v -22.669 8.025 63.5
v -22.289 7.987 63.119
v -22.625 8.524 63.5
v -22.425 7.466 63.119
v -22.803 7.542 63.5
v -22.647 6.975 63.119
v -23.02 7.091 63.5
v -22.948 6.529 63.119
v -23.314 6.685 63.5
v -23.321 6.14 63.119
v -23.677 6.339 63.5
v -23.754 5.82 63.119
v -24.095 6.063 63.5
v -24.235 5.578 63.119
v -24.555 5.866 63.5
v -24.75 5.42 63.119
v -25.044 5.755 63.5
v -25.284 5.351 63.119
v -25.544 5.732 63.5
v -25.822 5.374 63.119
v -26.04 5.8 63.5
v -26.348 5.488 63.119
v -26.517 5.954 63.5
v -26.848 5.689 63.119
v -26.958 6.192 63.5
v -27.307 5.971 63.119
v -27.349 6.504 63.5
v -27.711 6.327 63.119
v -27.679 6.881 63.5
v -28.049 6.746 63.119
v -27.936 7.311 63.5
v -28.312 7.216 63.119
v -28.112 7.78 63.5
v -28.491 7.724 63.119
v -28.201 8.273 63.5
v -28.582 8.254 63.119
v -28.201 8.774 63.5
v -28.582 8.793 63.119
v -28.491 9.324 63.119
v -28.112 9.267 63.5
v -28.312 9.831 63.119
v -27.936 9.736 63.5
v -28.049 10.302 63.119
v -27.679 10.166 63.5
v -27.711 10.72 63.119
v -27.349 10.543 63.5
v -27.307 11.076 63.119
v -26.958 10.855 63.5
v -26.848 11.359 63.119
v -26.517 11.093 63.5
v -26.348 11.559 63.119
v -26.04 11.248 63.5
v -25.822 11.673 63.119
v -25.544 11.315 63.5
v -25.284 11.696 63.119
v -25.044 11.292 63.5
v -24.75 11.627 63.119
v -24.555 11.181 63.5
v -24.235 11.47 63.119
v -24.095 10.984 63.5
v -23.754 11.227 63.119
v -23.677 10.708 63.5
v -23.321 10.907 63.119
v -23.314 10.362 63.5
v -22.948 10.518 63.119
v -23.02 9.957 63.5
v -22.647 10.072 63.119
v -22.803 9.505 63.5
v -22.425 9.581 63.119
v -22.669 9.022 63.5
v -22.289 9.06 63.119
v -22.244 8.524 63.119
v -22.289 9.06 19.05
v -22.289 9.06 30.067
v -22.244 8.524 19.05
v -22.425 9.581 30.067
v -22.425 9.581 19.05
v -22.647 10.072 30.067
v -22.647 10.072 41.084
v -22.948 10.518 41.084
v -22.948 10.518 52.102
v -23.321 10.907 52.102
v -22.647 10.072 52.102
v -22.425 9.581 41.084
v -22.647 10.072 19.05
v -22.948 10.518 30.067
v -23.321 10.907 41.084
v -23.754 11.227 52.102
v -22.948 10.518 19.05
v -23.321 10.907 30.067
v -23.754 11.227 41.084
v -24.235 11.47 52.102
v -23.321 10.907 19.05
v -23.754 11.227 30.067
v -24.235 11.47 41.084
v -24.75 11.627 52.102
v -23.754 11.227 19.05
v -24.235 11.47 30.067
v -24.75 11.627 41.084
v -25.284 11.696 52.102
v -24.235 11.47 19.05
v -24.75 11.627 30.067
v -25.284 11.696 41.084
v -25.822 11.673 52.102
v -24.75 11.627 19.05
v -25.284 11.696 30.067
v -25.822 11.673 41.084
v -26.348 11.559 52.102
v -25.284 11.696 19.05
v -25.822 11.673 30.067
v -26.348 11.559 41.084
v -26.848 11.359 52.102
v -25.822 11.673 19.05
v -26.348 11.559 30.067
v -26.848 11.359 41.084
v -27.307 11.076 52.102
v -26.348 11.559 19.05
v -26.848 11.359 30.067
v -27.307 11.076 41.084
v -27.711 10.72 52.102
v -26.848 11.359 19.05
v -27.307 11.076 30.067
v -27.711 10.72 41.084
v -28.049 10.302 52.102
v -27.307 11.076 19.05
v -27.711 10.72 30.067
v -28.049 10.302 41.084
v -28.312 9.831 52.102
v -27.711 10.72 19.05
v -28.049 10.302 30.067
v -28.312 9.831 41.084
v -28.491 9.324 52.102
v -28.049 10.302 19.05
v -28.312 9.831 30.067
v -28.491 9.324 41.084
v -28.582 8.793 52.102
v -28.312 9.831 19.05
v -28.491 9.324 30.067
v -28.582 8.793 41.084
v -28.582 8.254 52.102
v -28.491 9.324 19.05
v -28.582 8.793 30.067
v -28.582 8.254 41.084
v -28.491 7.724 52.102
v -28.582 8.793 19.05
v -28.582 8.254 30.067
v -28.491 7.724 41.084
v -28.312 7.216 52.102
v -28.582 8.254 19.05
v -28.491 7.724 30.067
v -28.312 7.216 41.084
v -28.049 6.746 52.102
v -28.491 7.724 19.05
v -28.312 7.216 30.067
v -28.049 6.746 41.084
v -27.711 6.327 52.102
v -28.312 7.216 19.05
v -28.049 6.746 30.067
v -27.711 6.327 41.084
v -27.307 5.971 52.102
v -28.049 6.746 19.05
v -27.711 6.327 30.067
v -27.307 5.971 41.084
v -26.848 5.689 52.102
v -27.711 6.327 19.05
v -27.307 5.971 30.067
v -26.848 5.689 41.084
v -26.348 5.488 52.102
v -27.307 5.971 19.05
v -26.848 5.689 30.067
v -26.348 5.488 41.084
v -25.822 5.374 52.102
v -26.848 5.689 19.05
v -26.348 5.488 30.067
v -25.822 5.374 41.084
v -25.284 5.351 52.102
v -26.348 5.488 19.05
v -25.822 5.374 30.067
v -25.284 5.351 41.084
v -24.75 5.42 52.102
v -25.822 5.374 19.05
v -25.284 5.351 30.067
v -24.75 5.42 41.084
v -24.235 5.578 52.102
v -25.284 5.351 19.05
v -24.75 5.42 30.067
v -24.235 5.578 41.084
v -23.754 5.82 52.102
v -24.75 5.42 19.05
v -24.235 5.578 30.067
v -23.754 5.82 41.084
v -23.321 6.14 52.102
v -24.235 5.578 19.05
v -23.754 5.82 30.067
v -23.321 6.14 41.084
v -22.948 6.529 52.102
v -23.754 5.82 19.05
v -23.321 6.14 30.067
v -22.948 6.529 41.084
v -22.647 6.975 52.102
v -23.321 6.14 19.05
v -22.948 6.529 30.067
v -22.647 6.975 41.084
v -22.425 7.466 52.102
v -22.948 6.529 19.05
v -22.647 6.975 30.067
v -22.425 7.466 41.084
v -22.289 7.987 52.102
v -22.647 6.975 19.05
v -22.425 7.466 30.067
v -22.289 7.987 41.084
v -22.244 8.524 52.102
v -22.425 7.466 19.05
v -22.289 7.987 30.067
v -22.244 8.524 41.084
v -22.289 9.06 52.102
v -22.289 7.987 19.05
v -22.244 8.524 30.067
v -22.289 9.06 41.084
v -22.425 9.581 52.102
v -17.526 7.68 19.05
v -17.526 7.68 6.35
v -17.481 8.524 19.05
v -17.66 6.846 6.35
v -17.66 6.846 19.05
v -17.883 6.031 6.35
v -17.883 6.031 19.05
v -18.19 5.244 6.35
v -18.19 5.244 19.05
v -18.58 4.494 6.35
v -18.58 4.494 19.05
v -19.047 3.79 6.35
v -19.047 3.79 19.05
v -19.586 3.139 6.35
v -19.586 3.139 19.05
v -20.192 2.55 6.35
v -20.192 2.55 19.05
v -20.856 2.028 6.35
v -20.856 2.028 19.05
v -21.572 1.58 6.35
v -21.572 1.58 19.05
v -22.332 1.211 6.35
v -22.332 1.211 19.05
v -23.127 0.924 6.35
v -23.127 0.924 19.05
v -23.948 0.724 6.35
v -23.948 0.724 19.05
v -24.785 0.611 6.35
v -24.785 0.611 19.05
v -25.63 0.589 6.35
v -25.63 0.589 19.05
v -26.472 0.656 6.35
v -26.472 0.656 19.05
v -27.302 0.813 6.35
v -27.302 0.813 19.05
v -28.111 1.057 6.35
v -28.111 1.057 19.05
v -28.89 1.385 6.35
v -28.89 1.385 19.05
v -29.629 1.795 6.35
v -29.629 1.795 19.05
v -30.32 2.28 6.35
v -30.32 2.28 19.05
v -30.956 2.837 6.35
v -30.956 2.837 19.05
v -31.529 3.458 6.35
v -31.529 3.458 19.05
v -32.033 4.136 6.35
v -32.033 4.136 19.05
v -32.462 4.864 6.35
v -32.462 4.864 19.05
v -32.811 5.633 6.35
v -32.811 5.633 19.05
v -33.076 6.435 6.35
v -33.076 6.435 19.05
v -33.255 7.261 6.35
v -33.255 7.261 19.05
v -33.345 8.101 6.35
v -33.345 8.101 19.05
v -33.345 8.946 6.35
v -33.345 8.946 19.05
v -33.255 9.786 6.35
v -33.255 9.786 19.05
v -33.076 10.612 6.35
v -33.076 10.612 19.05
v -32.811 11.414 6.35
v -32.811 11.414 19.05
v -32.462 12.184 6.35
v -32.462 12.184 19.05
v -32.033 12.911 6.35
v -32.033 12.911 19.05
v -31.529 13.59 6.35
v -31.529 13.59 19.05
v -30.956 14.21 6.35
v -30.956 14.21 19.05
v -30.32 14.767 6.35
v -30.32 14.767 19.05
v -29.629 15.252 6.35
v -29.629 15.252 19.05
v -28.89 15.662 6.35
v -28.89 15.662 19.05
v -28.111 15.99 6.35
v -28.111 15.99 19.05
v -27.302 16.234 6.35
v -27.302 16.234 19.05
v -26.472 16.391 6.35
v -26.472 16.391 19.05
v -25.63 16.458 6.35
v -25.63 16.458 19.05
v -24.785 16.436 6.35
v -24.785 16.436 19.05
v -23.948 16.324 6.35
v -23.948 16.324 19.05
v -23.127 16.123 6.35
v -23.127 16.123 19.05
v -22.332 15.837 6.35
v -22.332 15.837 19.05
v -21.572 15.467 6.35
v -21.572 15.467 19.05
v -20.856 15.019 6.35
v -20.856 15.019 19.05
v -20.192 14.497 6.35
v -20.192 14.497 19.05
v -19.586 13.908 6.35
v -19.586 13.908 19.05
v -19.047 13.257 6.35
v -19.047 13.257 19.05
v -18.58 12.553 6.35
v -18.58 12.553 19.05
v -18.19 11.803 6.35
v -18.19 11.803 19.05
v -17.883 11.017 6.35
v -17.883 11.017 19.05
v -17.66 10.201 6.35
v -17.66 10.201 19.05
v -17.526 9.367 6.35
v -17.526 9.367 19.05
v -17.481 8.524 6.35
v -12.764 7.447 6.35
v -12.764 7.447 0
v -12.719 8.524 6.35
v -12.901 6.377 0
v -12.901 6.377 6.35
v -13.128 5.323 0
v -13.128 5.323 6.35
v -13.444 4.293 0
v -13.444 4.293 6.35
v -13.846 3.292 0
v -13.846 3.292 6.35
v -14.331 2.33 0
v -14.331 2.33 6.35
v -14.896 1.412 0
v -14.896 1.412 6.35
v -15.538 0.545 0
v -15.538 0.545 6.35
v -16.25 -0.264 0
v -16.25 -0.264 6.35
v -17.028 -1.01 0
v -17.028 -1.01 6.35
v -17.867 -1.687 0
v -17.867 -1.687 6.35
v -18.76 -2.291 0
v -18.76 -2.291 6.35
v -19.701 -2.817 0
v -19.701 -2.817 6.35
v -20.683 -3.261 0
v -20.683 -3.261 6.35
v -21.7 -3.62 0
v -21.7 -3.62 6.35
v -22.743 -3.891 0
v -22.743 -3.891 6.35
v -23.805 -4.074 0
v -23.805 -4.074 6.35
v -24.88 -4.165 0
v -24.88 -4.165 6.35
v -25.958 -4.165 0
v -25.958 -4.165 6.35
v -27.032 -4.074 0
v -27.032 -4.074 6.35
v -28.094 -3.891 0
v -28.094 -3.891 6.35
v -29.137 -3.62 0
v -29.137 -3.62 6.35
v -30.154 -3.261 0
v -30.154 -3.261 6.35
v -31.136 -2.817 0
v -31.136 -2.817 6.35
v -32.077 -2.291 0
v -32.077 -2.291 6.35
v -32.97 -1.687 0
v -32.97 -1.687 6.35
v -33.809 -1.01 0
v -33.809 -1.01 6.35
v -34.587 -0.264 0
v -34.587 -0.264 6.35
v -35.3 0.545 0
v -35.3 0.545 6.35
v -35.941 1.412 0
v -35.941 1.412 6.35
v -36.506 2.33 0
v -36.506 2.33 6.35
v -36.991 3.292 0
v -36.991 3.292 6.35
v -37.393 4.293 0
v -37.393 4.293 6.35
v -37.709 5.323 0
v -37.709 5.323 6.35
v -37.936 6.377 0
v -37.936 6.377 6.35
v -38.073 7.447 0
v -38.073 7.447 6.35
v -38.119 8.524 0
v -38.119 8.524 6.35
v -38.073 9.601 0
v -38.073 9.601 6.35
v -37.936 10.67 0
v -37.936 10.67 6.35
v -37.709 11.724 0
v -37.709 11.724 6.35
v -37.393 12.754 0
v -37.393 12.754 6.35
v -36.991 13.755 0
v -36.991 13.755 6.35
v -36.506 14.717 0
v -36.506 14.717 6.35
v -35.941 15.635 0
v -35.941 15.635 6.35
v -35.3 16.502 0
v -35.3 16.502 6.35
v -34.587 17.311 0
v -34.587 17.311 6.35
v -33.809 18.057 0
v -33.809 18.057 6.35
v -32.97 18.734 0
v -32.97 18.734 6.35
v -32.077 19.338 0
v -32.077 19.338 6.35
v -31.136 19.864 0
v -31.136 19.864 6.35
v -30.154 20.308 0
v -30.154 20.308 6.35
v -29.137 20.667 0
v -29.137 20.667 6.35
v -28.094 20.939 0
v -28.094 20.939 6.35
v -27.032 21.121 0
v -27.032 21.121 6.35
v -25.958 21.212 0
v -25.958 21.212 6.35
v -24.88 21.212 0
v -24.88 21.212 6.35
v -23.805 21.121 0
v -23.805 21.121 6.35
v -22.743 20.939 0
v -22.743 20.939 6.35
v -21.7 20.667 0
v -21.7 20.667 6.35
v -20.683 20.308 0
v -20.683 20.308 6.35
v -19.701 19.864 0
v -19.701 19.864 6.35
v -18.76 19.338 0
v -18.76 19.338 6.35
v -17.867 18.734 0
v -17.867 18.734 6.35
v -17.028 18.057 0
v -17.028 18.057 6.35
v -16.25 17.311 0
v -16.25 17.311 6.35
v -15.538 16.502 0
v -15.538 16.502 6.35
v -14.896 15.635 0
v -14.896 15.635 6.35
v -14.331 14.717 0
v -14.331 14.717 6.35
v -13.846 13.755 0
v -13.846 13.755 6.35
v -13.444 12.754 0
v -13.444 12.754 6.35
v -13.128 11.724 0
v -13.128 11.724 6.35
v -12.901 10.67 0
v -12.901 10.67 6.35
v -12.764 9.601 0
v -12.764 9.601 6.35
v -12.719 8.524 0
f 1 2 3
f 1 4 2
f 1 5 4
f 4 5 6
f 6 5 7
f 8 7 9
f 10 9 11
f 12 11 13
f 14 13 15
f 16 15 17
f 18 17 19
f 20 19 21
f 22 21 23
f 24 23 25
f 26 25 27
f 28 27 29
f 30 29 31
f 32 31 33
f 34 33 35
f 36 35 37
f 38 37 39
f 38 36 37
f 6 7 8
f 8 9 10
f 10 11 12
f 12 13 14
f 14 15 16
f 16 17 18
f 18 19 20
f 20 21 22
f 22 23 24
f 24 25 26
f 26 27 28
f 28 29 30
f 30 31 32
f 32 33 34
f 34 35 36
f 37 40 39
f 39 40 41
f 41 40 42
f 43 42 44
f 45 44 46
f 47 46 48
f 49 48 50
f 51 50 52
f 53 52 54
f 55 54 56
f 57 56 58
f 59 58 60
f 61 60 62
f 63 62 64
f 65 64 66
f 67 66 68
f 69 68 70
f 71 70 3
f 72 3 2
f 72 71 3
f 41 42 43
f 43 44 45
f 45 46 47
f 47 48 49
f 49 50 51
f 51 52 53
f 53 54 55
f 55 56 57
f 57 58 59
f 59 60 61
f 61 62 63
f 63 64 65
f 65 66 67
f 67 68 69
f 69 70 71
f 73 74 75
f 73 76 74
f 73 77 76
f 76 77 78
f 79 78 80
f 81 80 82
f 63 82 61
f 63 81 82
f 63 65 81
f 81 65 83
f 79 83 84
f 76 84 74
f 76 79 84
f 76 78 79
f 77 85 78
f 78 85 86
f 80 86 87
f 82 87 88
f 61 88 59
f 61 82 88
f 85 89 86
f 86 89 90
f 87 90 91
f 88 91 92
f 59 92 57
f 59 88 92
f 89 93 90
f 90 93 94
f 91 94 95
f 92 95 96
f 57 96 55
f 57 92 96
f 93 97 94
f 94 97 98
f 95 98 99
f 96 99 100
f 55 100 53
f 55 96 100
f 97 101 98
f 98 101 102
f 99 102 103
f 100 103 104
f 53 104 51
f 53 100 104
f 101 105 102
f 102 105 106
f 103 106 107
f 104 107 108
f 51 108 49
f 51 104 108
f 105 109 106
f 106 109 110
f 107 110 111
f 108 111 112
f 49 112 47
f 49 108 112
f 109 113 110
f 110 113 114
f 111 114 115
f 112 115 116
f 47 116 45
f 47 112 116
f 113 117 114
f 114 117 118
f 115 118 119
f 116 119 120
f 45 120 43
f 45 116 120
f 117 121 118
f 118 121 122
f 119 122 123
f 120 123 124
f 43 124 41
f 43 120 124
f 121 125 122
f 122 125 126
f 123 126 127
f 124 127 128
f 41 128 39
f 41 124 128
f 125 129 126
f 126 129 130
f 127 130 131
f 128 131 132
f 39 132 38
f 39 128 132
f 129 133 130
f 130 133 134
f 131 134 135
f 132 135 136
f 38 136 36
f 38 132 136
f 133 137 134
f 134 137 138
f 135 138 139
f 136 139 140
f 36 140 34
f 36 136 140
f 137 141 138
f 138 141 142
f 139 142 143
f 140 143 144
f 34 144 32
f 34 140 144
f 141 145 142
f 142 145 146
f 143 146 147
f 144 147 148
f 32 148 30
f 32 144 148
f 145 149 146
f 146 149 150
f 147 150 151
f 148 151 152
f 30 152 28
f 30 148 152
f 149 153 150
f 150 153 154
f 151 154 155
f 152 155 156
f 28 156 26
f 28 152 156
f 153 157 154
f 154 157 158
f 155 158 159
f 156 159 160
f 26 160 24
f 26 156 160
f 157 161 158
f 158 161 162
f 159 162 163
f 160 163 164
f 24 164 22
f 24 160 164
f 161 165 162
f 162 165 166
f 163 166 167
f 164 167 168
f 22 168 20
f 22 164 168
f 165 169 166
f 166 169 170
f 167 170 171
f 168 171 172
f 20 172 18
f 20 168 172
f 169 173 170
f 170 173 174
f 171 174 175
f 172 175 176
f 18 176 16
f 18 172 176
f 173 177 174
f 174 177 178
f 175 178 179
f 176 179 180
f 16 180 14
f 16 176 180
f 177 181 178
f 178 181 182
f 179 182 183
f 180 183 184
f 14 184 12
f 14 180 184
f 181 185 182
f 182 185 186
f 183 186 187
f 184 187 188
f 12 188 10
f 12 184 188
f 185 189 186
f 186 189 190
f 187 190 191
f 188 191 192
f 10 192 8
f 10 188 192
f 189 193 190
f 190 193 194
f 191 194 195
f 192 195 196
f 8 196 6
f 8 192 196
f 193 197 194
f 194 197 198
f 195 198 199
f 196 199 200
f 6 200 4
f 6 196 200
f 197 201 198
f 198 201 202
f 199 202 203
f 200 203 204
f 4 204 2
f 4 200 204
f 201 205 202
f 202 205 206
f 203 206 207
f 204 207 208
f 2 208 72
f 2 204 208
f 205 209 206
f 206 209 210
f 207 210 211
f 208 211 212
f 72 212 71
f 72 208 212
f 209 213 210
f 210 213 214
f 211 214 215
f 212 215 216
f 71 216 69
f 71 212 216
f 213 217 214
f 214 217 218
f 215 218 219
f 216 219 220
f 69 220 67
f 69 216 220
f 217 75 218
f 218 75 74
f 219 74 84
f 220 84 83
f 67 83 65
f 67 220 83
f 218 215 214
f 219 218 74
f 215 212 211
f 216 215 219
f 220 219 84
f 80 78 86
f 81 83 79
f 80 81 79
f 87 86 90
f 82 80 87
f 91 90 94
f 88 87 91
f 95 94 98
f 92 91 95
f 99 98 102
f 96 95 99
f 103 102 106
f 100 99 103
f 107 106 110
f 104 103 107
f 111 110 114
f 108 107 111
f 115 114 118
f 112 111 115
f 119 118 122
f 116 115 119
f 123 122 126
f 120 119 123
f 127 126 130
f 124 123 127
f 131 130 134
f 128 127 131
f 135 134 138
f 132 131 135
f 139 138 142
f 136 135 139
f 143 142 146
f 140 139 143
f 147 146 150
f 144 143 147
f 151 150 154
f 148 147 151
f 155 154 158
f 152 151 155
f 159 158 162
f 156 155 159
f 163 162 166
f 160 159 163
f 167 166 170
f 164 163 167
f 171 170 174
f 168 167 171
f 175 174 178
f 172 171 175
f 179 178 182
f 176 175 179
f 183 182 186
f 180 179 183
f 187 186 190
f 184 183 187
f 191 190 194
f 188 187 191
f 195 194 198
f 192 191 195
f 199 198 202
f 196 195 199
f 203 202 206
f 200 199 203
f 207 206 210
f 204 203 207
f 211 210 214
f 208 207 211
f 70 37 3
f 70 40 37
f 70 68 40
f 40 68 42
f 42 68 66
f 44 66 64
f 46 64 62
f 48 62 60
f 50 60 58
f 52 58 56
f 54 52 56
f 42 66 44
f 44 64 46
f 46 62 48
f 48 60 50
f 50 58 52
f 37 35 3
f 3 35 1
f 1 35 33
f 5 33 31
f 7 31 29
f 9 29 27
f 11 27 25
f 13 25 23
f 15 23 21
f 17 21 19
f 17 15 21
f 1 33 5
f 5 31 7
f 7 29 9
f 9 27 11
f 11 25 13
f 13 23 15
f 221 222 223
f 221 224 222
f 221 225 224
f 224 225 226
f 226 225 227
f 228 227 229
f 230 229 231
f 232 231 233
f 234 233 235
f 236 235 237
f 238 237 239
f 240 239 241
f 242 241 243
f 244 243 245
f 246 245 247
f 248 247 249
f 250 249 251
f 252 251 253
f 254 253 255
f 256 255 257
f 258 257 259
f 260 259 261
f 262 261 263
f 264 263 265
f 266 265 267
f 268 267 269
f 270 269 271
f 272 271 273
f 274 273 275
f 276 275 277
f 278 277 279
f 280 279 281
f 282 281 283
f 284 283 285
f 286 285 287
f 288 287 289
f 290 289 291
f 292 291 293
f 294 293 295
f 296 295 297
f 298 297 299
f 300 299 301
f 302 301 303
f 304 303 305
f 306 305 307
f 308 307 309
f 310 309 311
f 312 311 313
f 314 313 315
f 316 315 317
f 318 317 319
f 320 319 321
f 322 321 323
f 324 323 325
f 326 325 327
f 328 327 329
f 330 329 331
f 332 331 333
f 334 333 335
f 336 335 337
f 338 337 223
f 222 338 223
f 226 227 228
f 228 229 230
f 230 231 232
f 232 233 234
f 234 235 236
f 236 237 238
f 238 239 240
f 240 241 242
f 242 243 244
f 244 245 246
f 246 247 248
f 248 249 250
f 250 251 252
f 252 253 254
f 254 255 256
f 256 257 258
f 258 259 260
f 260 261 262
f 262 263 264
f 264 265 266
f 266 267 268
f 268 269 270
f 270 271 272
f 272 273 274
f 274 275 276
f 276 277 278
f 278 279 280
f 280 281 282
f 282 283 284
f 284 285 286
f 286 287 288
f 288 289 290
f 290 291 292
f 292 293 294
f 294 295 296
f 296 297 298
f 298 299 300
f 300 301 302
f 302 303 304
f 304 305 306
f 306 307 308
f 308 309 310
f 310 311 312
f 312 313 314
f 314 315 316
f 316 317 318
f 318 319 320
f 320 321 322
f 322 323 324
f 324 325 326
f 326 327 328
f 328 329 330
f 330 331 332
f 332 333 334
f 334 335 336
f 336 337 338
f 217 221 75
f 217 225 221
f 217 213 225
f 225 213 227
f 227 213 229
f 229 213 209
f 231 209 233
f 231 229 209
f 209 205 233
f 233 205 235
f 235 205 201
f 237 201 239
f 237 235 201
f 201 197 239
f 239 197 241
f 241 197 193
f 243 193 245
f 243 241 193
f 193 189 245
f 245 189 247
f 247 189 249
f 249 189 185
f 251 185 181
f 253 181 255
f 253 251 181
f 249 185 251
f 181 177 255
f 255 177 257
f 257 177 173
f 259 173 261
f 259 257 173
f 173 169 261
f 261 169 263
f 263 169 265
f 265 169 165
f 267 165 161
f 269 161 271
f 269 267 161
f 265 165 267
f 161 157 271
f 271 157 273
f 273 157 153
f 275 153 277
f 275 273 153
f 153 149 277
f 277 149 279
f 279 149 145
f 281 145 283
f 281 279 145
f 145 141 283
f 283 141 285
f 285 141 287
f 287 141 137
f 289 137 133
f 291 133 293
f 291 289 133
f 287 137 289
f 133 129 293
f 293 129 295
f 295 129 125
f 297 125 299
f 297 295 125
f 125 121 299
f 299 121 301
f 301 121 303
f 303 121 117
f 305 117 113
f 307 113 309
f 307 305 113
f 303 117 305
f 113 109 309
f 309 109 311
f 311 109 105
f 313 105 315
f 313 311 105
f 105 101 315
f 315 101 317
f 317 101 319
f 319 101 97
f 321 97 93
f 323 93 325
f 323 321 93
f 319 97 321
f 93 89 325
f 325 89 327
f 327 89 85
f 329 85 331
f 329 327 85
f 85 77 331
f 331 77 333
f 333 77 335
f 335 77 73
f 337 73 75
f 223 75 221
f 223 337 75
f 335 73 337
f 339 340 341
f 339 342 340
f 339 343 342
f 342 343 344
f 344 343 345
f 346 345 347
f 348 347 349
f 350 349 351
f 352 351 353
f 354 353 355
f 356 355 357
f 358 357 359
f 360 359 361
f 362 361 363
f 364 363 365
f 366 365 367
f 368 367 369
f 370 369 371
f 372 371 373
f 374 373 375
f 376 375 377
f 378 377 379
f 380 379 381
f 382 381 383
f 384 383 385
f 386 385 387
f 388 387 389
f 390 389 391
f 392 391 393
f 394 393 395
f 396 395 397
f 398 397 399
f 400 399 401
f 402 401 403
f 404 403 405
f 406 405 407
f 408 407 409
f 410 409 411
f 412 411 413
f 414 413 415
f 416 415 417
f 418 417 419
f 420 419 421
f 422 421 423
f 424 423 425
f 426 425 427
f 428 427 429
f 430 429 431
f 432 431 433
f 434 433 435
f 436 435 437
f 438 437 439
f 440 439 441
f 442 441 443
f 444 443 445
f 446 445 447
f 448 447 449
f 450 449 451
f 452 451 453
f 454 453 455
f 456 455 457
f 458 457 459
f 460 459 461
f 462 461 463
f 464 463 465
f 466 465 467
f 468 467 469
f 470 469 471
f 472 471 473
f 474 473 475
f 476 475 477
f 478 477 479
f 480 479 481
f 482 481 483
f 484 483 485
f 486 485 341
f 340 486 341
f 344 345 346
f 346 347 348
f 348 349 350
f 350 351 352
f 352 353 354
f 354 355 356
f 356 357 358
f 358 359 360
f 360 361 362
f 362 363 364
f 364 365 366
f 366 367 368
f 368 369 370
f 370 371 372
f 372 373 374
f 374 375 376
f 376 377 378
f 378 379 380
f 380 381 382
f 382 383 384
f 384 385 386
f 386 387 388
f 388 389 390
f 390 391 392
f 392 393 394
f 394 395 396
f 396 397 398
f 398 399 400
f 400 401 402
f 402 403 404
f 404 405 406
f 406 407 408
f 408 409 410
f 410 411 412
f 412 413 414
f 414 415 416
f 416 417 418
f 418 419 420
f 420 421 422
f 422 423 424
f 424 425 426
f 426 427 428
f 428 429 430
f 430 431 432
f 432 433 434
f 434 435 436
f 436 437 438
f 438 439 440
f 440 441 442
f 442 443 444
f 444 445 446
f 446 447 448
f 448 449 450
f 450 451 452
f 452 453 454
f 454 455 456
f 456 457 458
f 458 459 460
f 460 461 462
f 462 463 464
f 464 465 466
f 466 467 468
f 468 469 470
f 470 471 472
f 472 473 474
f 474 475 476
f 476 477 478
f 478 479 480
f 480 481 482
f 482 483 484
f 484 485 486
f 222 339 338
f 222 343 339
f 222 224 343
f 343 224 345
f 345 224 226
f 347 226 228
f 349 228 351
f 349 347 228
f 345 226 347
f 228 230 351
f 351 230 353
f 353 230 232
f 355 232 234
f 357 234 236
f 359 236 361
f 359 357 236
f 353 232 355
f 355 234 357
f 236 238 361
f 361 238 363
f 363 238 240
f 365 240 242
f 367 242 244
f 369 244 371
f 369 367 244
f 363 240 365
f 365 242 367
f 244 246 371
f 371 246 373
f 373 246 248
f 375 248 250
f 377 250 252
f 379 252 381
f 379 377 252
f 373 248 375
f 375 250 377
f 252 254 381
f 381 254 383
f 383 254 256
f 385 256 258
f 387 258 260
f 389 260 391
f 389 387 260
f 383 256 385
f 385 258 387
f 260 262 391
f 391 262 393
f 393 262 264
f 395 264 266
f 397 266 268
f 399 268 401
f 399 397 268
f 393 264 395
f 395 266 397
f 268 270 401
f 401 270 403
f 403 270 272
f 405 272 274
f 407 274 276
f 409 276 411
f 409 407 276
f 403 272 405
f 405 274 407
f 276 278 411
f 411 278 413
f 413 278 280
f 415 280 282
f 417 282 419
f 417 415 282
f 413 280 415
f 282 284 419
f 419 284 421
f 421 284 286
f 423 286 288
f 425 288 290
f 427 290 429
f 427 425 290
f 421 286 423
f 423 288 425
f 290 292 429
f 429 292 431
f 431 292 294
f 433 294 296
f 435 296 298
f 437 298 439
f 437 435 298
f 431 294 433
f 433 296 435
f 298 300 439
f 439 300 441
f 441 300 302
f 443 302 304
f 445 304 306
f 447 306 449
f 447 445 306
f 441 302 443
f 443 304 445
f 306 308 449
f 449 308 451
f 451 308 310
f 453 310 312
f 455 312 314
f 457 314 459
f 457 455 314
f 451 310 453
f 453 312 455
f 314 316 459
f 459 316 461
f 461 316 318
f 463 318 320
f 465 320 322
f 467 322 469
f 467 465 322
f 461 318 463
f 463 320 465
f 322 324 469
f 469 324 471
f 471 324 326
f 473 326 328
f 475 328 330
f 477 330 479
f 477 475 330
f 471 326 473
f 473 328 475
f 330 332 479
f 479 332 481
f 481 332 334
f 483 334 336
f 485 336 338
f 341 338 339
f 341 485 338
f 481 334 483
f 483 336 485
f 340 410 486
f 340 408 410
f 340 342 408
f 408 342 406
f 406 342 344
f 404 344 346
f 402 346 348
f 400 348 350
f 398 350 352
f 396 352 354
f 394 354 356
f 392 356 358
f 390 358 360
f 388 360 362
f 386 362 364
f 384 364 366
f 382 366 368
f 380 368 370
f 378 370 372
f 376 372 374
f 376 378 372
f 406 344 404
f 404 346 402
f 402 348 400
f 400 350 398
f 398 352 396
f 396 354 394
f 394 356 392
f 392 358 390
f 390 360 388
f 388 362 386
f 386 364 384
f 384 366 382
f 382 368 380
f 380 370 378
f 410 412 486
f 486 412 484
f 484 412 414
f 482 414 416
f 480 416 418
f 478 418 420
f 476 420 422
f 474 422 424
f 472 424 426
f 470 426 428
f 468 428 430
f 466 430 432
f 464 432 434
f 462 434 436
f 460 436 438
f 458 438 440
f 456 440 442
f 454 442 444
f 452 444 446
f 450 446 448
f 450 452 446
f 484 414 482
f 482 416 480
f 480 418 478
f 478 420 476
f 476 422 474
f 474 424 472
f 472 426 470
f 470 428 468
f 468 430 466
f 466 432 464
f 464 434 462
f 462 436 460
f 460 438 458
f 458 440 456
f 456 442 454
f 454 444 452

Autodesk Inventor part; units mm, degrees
ref_plane "YZ Plane" through (0, 0, 0) normal (1, 0, 0) x (0, 1, 0)
ref_plane "XZ Plane" through (0, 0, 0) normal (0, 1, 0) x (-1, 0, 0)
ref_plane "XY Plane" through (0, 0, 0) normal (0, 0, 1) x (1, 0, 0)
sketch "Sketch1" plane through (0, 0, 0) normal (0, 0, 1) x (1, 0, 0)
  circle A0 centre (-25.4186, 8.5236) radius 12.7
  dimension "d0" = 25.4
extrude "Extrusion1" add sketch "Sketch1" along normal blind 6.35
sketch "Sketch2" plane through (-25.4186, 8.5236, 6.35) normal (0, 0, 1) x (1, 0, 0)
  circle A0 centre (0, 0) radius 12.7 projected
  circle A1 centre (0, 0) radius 7.9375
  dimension "d3" = 15.875
extrude "Extrusion2" add sketch "Sketch2" along normal blind 12.7 contours A1
sketch "Sketch3" plane through (-25.4186, 8.5236, 19.05) normal (0, 0, 1) x (1, 0, 0)
  circle A0 centre (0, 0) radius 7.9375 projected
  circle A1 centre (0, 0) radius 3.175
  dimension "d6" = 6.35
extrude "Extrusion3" add sketch "Sketch3" along normal blind 44.45 contours A1
thread "Thread1" size "1/4-28 UNF" class "2A" standard "ANSI Unified Screw Threads" full length
chamfer "Chamfer1" distance 0.381 angle 45 1 edges at (-28.5936, 8.5236, 63.5)
properties part number "PP-00012"
